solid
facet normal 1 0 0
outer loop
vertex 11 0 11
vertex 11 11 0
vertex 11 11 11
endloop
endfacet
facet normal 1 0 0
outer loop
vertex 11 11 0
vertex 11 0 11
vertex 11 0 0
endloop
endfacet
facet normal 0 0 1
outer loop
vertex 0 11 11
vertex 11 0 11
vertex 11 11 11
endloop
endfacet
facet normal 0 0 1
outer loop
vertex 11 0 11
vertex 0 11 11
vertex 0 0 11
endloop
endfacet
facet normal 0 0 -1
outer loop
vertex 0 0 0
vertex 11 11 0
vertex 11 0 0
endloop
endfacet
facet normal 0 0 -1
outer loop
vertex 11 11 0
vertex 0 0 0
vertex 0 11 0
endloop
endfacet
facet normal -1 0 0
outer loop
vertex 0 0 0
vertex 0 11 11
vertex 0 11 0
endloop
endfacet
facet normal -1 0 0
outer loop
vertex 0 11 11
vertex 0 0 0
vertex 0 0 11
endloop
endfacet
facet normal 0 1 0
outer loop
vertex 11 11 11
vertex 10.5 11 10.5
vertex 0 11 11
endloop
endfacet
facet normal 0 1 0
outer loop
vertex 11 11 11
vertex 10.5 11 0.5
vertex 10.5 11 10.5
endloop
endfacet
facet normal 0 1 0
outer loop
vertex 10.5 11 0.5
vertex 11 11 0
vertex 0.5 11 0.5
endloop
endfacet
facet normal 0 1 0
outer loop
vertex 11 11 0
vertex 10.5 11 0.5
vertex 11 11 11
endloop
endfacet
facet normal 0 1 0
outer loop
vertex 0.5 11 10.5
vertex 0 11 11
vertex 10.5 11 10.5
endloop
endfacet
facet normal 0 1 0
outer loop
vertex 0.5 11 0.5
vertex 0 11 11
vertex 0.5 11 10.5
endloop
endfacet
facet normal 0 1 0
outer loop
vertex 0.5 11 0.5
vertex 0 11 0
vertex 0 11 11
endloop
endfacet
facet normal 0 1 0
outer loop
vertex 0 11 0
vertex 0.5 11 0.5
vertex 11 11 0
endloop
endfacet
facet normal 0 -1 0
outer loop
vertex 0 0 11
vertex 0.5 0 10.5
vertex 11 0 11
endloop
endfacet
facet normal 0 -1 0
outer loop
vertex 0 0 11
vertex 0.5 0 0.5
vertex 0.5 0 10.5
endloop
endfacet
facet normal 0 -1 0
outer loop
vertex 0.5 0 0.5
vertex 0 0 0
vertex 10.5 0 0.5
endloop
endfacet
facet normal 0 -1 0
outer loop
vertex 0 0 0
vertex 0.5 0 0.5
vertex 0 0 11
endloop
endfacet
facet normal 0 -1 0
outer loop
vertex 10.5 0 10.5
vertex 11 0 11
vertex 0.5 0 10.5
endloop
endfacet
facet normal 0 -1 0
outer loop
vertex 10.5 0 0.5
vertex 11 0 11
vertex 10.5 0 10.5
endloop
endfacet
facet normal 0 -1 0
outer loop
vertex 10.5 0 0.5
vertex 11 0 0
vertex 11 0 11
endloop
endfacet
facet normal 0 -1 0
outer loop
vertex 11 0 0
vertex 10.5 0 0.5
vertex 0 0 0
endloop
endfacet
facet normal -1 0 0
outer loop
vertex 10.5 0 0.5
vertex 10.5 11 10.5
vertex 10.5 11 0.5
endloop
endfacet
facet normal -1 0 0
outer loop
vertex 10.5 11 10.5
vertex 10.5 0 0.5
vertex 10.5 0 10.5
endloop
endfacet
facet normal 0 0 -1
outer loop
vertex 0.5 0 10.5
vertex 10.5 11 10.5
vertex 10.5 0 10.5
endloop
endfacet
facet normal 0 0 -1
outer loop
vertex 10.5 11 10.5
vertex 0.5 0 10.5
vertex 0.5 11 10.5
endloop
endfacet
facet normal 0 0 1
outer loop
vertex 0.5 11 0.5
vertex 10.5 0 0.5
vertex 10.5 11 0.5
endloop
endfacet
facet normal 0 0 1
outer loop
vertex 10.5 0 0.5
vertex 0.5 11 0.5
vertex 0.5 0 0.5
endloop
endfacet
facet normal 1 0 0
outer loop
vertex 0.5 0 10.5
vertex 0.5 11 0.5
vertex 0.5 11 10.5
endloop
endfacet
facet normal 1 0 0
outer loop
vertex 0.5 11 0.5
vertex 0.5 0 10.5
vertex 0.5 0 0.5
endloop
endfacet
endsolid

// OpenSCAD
module vectorBox(){
    //just a small demonstrator for vector subtraction and addition
    // as things can get complicated with single unit variables the below shows how it can be abstracted and simplified

    //inside side length
    inSize = 10 ;
    //wall thickness
    wallThick = .5;

    //the vectors predefined
    inSizeA = [inSize,inSize,inSize] ;
    inSizeX = [inSize,0,0] ;
    inSizeY = [0,inSize,0] ;
    inSizeZ = [0,0,inSize] ;
    offset = wallThick * 2 ;
    offsetA = [offset,offset,offset] ;
    offsetX = [offset,0,0] ;
    offsetY = [0,offset,0] ;
    offsetZ = [0,0,offset] ;
    offsetZY = offsetZ + offsetY ;
    offsetZX = offsetZ + offsetX ;
    offsetXY = offsetX + offsetY ;
    diffWiggle = .1 ;
    diffWiggleY = [0,diffWiggle,0] ;
    
    difference() {
        //total volume cube
        cube(inSizeA + offsetA);
        //inside volume cube
        translate((offsetZX)/2 - diffWiggleY/2) 
            cube(inSizeA + offsetY + diffWiggleY);
    }

}
vectorBox();
